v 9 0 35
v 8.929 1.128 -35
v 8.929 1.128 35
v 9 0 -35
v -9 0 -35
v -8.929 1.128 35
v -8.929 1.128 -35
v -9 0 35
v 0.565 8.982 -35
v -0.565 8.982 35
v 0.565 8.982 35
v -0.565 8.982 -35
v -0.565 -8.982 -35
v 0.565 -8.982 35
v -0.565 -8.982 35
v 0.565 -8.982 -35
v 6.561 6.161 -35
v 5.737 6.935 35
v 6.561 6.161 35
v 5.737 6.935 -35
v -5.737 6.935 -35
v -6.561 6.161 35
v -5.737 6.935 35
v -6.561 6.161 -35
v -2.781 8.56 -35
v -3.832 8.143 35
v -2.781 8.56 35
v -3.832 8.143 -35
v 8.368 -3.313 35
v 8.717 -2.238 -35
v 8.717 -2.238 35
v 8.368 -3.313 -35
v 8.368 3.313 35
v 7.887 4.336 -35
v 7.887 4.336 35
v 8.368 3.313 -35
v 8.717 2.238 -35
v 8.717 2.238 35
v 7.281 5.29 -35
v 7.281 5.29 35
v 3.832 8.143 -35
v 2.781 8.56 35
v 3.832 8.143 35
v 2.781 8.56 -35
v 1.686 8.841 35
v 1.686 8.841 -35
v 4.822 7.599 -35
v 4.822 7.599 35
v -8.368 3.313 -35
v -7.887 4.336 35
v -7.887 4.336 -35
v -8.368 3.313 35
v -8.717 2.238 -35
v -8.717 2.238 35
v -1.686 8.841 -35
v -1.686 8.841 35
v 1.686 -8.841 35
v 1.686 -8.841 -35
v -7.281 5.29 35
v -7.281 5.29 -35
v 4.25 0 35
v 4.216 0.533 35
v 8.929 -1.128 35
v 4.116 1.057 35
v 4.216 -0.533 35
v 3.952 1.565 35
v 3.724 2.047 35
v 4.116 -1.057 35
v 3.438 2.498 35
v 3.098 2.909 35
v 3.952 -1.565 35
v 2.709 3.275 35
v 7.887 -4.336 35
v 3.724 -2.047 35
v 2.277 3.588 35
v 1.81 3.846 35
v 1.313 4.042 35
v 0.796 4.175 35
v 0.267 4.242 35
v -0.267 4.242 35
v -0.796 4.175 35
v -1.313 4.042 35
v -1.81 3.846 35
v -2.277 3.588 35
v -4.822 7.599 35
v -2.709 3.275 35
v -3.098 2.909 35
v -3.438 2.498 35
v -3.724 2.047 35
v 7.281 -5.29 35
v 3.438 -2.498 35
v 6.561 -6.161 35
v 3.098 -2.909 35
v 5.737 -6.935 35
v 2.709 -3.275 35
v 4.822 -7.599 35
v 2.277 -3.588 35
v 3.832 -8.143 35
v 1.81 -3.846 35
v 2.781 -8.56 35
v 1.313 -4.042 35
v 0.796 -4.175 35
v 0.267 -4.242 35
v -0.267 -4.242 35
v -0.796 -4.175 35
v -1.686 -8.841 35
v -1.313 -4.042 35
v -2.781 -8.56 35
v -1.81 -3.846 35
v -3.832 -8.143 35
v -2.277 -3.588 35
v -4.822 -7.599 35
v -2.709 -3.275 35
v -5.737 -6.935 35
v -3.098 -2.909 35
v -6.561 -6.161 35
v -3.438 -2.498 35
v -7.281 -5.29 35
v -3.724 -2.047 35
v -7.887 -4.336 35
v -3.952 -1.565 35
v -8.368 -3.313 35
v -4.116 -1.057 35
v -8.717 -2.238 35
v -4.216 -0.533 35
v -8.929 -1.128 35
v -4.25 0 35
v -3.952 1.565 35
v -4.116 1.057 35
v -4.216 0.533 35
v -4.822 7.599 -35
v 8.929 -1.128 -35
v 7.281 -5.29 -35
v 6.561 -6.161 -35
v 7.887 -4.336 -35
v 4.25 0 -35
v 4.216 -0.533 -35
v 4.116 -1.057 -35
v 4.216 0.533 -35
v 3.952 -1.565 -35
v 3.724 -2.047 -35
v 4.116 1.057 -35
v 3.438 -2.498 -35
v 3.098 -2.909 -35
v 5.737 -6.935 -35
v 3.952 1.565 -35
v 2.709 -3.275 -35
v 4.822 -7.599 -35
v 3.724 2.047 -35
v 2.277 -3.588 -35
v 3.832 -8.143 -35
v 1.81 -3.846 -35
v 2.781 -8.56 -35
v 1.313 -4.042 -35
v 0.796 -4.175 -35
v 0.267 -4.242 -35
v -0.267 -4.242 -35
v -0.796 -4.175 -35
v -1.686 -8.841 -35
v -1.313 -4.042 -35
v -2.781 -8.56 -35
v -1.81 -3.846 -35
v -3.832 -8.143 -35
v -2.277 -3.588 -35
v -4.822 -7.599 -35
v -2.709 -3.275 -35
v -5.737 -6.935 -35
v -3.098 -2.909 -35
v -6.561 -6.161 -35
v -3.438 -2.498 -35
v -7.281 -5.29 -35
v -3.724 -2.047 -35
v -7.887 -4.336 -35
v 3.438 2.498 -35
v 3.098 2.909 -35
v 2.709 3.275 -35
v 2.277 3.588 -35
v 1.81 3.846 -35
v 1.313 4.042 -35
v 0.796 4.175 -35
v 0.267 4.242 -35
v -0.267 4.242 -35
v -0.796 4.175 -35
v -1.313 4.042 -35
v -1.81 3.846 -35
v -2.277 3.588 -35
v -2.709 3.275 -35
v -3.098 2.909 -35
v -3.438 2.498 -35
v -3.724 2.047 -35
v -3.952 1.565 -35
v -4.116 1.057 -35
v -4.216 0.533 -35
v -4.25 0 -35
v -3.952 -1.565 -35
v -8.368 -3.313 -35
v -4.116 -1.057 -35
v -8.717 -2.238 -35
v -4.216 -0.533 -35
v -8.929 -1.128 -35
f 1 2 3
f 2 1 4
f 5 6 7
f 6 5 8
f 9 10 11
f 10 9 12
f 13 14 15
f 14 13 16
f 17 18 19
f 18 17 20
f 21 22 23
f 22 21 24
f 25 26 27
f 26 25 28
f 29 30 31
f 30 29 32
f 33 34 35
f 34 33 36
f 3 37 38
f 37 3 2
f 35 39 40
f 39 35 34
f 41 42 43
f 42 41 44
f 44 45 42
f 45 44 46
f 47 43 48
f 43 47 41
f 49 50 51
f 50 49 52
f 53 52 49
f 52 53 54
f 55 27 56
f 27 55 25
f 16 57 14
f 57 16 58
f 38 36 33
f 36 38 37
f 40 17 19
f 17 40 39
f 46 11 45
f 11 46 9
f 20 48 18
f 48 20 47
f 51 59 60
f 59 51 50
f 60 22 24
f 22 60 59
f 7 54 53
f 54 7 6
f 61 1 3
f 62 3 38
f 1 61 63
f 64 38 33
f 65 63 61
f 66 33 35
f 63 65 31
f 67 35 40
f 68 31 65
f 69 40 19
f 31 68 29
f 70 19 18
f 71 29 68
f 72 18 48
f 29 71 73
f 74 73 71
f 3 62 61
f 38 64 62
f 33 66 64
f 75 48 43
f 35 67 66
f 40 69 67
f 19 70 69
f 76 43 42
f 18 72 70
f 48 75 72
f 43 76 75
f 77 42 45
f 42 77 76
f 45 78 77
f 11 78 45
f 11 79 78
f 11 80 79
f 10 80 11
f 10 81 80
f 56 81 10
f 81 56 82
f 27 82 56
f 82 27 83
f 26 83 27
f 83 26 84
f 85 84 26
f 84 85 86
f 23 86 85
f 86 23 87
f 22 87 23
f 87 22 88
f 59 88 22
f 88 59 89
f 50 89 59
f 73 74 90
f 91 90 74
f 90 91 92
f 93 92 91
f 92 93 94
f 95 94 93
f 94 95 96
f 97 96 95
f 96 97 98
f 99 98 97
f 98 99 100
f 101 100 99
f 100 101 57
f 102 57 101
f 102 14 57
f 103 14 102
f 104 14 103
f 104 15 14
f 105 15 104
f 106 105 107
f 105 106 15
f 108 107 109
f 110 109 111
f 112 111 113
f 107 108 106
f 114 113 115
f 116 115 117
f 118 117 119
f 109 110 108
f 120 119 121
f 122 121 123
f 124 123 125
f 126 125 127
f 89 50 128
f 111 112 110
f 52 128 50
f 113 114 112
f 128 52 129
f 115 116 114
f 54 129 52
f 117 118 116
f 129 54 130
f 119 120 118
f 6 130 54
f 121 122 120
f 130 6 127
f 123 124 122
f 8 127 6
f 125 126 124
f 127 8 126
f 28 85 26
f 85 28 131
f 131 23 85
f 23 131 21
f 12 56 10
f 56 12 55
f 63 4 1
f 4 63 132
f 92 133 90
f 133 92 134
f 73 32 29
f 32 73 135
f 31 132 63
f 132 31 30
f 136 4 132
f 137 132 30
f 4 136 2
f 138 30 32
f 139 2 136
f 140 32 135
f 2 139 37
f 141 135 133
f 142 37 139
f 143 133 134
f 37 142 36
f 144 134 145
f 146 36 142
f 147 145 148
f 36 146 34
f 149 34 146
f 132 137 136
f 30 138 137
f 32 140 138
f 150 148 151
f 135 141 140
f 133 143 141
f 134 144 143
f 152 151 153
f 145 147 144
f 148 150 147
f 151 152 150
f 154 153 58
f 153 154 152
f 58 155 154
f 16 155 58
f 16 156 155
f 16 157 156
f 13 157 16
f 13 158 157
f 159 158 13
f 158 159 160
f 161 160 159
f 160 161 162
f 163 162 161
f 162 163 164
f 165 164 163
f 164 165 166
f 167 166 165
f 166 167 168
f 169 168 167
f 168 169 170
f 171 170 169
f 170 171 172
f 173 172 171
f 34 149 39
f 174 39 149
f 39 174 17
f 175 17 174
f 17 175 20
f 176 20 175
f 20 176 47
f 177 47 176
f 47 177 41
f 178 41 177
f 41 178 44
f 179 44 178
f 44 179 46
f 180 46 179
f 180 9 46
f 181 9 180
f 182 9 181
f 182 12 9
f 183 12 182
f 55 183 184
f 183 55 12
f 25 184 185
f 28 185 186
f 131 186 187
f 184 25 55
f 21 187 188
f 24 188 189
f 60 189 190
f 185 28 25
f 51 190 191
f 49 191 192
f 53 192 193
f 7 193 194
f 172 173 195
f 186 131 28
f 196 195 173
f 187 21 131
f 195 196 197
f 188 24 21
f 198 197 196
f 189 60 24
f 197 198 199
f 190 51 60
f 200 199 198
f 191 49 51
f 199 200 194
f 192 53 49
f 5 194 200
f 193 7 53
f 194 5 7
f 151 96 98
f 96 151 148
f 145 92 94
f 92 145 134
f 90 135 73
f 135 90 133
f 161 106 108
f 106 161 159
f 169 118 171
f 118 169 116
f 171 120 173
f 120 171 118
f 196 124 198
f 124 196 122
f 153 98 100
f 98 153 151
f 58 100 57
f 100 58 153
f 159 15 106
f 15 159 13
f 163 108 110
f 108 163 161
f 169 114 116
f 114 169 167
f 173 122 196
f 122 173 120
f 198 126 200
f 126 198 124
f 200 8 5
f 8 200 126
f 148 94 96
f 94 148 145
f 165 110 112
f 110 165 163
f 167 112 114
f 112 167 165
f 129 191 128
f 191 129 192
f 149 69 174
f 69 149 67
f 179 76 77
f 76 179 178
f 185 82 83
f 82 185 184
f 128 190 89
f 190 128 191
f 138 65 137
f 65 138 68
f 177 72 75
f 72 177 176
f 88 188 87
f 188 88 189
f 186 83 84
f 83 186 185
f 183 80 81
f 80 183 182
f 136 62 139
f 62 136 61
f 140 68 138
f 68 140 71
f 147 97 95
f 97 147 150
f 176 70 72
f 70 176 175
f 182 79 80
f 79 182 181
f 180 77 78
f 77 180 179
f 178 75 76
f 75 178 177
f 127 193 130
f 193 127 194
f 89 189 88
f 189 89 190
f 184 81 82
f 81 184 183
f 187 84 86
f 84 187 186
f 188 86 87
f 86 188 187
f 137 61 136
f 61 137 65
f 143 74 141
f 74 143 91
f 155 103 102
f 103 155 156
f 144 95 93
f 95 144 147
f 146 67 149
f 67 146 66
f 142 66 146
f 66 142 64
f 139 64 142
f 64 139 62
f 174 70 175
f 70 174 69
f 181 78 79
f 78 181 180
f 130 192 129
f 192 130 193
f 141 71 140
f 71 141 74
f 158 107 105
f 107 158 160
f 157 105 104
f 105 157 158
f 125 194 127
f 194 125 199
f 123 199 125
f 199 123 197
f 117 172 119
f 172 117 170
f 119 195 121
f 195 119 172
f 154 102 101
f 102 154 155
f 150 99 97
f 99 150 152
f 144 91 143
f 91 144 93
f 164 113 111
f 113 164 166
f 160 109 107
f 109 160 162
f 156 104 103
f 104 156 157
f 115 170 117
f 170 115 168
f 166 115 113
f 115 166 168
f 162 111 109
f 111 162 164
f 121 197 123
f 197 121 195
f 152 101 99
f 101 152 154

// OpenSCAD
$fn = 50;


difference() {
	union() {
		translate(v = [0, 0, -35.0000000000]) {
			cylinder(h = 70, r = 9.0000000000);
		}
	}
	union() {
		translate(v = [0, 0, -100.0000000000]) {
			cylinder(h = 200, r = 4.2500000000);
		}
	}
}
